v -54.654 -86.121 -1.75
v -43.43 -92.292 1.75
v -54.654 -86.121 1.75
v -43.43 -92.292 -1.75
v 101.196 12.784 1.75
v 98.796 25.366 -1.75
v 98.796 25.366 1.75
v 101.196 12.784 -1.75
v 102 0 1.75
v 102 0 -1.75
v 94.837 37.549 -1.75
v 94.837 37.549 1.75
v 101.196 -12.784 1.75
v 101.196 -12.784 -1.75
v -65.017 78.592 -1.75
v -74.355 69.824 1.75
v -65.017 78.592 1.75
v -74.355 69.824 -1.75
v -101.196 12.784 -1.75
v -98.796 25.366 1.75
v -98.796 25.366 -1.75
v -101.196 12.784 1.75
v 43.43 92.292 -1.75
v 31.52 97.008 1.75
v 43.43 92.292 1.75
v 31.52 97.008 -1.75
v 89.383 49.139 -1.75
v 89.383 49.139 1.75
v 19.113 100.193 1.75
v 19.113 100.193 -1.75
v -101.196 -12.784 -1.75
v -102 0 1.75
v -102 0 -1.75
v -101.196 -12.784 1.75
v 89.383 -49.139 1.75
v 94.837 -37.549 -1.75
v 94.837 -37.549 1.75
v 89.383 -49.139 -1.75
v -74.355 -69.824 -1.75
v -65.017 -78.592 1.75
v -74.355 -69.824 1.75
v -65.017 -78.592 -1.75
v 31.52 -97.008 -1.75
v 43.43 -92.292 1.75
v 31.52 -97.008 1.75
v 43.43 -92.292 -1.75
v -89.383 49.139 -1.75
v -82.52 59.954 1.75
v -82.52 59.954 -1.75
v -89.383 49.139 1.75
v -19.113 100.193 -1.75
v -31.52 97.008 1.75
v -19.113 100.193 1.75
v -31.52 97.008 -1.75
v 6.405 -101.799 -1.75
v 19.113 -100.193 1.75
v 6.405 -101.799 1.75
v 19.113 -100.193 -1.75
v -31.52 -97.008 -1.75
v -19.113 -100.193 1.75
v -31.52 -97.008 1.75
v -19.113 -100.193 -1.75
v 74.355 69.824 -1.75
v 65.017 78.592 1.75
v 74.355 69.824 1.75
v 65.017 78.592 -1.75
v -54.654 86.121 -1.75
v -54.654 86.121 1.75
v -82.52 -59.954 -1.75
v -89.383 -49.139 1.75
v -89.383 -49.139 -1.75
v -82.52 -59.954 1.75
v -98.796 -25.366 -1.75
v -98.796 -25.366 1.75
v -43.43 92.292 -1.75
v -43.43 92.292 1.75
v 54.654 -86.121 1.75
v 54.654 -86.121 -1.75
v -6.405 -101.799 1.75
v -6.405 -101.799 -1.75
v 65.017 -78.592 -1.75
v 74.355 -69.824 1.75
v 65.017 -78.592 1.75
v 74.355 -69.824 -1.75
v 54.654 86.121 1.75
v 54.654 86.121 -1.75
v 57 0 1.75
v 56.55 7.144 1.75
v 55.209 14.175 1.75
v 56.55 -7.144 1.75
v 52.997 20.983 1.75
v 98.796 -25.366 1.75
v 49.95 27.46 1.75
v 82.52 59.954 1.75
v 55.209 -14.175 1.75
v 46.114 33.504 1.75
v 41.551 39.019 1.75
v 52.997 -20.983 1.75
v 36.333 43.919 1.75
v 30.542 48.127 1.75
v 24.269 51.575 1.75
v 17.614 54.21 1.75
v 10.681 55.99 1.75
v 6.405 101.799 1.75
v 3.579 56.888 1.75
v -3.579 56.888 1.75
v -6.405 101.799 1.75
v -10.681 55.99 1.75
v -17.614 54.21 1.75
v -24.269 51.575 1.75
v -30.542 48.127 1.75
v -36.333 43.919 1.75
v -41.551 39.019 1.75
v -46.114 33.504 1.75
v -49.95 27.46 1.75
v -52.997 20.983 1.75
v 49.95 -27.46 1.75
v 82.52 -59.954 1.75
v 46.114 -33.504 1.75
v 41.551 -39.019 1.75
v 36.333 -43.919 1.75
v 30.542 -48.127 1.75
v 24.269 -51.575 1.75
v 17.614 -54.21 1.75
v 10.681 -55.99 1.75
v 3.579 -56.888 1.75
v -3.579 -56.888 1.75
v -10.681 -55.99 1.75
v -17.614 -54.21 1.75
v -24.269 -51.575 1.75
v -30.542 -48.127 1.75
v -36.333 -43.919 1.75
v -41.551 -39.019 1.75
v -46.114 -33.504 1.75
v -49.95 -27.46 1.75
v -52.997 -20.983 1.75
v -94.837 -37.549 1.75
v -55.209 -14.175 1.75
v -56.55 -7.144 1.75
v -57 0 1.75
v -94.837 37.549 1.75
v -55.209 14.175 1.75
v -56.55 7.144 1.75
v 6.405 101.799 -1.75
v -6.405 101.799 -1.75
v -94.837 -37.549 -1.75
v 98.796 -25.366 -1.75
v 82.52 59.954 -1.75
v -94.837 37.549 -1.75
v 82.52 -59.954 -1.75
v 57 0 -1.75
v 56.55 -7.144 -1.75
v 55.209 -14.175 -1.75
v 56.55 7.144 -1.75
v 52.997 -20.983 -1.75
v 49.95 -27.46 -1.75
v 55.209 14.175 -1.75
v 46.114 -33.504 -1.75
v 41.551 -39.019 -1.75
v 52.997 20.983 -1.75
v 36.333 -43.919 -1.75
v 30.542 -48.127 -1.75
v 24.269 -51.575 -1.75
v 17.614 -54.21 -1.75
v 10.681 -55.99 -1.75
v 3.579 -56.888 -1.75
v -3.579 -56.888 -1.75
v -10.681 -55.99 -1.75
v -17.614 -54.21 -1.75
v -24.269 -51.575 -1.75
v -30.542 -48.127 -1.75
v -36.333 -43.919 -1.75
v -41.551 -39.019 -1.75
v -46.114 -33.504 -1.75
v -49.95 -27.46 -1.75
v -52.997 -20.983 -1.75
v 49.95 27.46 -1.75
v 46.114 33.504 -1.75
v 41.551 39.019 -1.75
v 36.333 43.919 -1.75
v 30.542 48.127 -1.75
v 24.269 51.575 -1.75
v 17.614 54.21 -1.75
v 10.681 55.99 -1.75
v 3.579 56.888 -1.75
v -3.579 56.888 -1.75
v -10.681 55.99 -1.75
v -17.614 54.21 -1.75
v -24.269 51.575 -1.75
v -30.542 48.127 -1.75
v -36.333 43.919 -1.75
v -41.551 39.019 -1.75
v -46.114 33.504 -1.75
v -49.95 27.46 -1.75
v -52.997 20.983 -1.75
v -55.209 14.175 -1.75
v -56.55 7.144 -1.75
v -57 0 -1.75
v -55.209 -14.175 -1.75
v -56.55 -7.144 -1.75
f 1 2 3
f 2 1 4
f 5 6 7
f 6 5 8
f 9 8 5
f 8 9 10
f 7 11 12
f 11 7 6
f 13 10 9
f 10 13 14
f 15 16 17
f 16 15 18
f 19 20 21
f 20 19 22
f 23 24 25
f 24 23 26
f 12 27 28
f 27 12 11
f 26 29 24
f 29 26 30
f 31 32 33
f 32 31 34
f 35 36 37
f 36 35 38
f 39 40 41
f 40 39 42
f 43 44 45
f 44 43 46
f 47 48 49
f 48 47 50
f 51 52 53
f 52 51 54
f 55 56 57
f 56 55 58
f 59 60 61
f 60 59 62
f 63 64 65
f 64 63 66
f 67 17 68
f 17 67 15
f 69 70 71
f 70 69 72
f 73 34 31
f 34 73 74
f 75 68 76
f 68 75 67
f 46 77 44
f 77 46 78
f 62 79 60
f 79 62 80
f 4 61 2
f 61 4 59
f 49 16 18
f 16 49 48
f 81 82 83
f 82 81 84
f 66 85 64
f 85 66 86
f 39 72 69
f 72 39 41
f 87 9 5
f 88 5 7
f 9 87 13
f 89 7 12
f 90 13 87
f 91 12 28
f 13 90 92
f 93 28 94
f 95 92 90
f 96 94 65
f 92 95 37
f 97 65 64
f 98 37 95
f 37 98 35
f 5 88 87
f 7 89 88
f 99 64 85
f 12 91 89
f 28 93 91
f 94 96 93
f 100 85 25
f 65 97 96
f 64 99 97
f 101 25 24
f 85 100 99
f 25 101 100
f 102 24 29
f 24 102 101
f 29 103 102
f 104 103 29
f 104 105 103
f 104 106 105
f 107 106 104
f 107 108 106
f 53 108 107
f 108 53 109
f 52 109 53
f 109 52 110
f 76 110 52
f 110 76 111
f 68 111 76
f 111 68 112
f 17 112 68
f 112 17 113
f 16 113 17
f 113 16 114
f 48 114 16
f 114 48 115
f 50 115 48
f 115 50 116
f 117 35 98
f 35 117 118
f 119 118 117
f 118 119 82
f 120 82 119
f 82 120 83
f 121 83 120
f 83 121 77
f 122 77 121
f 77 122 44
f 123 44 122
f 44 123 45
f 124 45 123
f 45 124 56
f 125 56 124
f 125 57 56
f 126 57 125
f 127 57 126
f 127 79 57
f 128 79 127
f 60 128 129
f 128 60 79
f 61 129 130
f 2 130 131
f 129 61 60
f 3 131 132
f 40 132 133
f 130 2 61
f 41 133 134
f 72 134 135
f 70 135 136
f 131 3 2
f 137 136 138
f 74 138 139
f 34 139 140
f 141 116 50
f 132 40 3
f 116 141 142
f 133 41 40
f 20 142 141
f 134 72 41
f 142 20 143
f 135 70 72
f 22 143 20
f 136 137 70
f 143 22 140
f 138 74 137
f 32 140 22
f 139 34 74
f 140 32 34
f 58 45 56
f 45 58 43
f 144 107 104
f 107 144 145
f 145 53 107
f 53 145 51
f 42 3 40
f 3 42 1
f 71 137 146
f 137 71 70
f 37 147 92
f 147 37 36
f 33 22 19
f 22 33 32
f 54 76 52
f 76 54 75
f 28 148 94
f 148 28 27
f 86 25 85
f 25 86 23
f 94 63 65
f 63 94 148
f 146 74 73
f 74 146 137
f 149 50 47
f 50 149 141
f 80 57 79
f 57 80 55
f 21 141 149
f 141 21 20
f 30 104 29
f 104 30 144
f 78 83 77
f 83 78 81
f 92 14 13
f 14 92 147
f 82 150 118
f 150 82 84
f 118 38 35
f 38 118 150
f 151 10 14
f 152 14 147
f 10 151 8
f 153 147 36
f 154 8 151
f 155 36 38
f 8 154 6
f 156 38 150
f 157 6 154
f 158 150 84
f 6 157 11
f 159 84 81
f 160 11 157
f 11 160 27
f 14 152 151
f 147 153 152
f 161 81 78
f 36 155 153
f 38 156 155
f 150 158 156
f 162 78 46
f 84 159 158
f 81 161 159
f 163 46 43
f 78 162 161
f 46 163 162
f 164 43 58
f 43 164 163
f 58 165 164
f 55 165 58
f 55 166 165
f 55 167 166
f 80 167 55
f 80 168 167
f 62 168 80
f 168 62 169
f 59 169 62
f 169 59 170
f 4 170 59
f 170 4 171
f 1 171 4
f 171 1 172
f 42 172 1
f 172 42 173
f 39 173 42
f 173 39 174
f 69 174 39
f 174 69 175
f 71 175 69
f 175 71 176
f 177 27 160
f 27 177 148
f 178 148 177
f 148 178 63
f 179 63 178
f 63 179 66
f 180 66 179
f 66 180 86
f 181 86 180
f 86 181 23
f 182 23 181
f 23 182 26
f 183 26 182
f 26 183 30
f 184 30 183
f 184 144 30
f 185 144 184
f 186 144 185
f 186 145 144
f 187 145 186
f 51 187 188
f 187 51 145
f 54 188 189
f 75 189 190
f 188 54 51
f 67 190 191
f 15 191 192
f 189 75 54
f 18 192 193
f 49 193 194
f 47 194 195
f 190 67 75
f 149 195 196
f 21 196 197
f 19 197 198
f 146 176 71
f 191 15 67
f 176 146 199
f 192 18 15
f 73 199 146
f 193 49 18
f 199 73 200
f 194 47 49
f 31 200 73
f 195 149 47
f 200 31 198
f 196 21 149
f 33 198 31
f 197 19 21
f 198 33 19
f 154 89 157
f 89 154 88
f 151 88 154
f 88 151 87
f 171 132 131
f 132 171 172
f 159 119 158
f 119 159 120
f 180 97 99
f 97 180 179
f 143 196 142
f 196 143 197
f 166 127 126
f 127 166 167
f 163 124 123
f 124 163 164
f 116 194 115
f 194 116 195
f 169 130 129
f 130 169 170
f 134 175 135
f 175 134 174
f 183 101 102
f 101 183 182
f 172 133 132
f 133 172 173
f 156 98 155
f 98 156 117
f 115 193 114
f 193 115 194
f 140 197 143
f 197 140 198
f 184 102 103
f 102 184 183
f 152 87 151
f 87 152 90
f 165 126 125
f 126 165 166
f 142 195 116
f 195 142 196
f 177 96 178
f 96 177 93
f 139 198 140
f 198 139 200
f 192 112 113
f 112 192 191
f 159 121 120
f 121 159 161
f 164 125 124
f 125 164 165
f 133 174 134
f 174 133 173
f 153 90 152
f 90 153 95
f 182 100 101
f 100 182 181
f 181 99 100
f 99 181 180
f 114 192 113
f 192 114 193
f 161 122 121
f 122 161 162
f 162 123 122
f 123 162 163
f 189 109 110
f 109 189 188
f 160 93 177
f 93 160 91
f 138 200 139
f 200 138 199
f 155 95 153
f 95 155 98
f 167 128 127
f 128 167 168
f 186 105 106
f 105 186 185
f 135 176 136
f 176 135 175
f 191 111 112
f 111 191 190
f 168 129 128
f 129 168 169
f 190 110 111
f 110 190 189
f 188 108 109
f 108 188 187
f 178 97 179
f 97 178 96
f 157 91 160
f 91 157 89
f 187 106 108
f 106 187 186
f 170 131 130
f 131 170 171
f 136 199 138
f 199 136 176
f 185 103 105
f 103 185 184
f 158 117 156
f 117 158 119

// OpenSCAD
// number of faces for rendering
$fn = 50;


difference() {
    // create outer ring
    cylinder(r=102,h=3.5, center=true);
    
    // difference with inner ring
    cylinder(r=57,h=4,center=true);
}
